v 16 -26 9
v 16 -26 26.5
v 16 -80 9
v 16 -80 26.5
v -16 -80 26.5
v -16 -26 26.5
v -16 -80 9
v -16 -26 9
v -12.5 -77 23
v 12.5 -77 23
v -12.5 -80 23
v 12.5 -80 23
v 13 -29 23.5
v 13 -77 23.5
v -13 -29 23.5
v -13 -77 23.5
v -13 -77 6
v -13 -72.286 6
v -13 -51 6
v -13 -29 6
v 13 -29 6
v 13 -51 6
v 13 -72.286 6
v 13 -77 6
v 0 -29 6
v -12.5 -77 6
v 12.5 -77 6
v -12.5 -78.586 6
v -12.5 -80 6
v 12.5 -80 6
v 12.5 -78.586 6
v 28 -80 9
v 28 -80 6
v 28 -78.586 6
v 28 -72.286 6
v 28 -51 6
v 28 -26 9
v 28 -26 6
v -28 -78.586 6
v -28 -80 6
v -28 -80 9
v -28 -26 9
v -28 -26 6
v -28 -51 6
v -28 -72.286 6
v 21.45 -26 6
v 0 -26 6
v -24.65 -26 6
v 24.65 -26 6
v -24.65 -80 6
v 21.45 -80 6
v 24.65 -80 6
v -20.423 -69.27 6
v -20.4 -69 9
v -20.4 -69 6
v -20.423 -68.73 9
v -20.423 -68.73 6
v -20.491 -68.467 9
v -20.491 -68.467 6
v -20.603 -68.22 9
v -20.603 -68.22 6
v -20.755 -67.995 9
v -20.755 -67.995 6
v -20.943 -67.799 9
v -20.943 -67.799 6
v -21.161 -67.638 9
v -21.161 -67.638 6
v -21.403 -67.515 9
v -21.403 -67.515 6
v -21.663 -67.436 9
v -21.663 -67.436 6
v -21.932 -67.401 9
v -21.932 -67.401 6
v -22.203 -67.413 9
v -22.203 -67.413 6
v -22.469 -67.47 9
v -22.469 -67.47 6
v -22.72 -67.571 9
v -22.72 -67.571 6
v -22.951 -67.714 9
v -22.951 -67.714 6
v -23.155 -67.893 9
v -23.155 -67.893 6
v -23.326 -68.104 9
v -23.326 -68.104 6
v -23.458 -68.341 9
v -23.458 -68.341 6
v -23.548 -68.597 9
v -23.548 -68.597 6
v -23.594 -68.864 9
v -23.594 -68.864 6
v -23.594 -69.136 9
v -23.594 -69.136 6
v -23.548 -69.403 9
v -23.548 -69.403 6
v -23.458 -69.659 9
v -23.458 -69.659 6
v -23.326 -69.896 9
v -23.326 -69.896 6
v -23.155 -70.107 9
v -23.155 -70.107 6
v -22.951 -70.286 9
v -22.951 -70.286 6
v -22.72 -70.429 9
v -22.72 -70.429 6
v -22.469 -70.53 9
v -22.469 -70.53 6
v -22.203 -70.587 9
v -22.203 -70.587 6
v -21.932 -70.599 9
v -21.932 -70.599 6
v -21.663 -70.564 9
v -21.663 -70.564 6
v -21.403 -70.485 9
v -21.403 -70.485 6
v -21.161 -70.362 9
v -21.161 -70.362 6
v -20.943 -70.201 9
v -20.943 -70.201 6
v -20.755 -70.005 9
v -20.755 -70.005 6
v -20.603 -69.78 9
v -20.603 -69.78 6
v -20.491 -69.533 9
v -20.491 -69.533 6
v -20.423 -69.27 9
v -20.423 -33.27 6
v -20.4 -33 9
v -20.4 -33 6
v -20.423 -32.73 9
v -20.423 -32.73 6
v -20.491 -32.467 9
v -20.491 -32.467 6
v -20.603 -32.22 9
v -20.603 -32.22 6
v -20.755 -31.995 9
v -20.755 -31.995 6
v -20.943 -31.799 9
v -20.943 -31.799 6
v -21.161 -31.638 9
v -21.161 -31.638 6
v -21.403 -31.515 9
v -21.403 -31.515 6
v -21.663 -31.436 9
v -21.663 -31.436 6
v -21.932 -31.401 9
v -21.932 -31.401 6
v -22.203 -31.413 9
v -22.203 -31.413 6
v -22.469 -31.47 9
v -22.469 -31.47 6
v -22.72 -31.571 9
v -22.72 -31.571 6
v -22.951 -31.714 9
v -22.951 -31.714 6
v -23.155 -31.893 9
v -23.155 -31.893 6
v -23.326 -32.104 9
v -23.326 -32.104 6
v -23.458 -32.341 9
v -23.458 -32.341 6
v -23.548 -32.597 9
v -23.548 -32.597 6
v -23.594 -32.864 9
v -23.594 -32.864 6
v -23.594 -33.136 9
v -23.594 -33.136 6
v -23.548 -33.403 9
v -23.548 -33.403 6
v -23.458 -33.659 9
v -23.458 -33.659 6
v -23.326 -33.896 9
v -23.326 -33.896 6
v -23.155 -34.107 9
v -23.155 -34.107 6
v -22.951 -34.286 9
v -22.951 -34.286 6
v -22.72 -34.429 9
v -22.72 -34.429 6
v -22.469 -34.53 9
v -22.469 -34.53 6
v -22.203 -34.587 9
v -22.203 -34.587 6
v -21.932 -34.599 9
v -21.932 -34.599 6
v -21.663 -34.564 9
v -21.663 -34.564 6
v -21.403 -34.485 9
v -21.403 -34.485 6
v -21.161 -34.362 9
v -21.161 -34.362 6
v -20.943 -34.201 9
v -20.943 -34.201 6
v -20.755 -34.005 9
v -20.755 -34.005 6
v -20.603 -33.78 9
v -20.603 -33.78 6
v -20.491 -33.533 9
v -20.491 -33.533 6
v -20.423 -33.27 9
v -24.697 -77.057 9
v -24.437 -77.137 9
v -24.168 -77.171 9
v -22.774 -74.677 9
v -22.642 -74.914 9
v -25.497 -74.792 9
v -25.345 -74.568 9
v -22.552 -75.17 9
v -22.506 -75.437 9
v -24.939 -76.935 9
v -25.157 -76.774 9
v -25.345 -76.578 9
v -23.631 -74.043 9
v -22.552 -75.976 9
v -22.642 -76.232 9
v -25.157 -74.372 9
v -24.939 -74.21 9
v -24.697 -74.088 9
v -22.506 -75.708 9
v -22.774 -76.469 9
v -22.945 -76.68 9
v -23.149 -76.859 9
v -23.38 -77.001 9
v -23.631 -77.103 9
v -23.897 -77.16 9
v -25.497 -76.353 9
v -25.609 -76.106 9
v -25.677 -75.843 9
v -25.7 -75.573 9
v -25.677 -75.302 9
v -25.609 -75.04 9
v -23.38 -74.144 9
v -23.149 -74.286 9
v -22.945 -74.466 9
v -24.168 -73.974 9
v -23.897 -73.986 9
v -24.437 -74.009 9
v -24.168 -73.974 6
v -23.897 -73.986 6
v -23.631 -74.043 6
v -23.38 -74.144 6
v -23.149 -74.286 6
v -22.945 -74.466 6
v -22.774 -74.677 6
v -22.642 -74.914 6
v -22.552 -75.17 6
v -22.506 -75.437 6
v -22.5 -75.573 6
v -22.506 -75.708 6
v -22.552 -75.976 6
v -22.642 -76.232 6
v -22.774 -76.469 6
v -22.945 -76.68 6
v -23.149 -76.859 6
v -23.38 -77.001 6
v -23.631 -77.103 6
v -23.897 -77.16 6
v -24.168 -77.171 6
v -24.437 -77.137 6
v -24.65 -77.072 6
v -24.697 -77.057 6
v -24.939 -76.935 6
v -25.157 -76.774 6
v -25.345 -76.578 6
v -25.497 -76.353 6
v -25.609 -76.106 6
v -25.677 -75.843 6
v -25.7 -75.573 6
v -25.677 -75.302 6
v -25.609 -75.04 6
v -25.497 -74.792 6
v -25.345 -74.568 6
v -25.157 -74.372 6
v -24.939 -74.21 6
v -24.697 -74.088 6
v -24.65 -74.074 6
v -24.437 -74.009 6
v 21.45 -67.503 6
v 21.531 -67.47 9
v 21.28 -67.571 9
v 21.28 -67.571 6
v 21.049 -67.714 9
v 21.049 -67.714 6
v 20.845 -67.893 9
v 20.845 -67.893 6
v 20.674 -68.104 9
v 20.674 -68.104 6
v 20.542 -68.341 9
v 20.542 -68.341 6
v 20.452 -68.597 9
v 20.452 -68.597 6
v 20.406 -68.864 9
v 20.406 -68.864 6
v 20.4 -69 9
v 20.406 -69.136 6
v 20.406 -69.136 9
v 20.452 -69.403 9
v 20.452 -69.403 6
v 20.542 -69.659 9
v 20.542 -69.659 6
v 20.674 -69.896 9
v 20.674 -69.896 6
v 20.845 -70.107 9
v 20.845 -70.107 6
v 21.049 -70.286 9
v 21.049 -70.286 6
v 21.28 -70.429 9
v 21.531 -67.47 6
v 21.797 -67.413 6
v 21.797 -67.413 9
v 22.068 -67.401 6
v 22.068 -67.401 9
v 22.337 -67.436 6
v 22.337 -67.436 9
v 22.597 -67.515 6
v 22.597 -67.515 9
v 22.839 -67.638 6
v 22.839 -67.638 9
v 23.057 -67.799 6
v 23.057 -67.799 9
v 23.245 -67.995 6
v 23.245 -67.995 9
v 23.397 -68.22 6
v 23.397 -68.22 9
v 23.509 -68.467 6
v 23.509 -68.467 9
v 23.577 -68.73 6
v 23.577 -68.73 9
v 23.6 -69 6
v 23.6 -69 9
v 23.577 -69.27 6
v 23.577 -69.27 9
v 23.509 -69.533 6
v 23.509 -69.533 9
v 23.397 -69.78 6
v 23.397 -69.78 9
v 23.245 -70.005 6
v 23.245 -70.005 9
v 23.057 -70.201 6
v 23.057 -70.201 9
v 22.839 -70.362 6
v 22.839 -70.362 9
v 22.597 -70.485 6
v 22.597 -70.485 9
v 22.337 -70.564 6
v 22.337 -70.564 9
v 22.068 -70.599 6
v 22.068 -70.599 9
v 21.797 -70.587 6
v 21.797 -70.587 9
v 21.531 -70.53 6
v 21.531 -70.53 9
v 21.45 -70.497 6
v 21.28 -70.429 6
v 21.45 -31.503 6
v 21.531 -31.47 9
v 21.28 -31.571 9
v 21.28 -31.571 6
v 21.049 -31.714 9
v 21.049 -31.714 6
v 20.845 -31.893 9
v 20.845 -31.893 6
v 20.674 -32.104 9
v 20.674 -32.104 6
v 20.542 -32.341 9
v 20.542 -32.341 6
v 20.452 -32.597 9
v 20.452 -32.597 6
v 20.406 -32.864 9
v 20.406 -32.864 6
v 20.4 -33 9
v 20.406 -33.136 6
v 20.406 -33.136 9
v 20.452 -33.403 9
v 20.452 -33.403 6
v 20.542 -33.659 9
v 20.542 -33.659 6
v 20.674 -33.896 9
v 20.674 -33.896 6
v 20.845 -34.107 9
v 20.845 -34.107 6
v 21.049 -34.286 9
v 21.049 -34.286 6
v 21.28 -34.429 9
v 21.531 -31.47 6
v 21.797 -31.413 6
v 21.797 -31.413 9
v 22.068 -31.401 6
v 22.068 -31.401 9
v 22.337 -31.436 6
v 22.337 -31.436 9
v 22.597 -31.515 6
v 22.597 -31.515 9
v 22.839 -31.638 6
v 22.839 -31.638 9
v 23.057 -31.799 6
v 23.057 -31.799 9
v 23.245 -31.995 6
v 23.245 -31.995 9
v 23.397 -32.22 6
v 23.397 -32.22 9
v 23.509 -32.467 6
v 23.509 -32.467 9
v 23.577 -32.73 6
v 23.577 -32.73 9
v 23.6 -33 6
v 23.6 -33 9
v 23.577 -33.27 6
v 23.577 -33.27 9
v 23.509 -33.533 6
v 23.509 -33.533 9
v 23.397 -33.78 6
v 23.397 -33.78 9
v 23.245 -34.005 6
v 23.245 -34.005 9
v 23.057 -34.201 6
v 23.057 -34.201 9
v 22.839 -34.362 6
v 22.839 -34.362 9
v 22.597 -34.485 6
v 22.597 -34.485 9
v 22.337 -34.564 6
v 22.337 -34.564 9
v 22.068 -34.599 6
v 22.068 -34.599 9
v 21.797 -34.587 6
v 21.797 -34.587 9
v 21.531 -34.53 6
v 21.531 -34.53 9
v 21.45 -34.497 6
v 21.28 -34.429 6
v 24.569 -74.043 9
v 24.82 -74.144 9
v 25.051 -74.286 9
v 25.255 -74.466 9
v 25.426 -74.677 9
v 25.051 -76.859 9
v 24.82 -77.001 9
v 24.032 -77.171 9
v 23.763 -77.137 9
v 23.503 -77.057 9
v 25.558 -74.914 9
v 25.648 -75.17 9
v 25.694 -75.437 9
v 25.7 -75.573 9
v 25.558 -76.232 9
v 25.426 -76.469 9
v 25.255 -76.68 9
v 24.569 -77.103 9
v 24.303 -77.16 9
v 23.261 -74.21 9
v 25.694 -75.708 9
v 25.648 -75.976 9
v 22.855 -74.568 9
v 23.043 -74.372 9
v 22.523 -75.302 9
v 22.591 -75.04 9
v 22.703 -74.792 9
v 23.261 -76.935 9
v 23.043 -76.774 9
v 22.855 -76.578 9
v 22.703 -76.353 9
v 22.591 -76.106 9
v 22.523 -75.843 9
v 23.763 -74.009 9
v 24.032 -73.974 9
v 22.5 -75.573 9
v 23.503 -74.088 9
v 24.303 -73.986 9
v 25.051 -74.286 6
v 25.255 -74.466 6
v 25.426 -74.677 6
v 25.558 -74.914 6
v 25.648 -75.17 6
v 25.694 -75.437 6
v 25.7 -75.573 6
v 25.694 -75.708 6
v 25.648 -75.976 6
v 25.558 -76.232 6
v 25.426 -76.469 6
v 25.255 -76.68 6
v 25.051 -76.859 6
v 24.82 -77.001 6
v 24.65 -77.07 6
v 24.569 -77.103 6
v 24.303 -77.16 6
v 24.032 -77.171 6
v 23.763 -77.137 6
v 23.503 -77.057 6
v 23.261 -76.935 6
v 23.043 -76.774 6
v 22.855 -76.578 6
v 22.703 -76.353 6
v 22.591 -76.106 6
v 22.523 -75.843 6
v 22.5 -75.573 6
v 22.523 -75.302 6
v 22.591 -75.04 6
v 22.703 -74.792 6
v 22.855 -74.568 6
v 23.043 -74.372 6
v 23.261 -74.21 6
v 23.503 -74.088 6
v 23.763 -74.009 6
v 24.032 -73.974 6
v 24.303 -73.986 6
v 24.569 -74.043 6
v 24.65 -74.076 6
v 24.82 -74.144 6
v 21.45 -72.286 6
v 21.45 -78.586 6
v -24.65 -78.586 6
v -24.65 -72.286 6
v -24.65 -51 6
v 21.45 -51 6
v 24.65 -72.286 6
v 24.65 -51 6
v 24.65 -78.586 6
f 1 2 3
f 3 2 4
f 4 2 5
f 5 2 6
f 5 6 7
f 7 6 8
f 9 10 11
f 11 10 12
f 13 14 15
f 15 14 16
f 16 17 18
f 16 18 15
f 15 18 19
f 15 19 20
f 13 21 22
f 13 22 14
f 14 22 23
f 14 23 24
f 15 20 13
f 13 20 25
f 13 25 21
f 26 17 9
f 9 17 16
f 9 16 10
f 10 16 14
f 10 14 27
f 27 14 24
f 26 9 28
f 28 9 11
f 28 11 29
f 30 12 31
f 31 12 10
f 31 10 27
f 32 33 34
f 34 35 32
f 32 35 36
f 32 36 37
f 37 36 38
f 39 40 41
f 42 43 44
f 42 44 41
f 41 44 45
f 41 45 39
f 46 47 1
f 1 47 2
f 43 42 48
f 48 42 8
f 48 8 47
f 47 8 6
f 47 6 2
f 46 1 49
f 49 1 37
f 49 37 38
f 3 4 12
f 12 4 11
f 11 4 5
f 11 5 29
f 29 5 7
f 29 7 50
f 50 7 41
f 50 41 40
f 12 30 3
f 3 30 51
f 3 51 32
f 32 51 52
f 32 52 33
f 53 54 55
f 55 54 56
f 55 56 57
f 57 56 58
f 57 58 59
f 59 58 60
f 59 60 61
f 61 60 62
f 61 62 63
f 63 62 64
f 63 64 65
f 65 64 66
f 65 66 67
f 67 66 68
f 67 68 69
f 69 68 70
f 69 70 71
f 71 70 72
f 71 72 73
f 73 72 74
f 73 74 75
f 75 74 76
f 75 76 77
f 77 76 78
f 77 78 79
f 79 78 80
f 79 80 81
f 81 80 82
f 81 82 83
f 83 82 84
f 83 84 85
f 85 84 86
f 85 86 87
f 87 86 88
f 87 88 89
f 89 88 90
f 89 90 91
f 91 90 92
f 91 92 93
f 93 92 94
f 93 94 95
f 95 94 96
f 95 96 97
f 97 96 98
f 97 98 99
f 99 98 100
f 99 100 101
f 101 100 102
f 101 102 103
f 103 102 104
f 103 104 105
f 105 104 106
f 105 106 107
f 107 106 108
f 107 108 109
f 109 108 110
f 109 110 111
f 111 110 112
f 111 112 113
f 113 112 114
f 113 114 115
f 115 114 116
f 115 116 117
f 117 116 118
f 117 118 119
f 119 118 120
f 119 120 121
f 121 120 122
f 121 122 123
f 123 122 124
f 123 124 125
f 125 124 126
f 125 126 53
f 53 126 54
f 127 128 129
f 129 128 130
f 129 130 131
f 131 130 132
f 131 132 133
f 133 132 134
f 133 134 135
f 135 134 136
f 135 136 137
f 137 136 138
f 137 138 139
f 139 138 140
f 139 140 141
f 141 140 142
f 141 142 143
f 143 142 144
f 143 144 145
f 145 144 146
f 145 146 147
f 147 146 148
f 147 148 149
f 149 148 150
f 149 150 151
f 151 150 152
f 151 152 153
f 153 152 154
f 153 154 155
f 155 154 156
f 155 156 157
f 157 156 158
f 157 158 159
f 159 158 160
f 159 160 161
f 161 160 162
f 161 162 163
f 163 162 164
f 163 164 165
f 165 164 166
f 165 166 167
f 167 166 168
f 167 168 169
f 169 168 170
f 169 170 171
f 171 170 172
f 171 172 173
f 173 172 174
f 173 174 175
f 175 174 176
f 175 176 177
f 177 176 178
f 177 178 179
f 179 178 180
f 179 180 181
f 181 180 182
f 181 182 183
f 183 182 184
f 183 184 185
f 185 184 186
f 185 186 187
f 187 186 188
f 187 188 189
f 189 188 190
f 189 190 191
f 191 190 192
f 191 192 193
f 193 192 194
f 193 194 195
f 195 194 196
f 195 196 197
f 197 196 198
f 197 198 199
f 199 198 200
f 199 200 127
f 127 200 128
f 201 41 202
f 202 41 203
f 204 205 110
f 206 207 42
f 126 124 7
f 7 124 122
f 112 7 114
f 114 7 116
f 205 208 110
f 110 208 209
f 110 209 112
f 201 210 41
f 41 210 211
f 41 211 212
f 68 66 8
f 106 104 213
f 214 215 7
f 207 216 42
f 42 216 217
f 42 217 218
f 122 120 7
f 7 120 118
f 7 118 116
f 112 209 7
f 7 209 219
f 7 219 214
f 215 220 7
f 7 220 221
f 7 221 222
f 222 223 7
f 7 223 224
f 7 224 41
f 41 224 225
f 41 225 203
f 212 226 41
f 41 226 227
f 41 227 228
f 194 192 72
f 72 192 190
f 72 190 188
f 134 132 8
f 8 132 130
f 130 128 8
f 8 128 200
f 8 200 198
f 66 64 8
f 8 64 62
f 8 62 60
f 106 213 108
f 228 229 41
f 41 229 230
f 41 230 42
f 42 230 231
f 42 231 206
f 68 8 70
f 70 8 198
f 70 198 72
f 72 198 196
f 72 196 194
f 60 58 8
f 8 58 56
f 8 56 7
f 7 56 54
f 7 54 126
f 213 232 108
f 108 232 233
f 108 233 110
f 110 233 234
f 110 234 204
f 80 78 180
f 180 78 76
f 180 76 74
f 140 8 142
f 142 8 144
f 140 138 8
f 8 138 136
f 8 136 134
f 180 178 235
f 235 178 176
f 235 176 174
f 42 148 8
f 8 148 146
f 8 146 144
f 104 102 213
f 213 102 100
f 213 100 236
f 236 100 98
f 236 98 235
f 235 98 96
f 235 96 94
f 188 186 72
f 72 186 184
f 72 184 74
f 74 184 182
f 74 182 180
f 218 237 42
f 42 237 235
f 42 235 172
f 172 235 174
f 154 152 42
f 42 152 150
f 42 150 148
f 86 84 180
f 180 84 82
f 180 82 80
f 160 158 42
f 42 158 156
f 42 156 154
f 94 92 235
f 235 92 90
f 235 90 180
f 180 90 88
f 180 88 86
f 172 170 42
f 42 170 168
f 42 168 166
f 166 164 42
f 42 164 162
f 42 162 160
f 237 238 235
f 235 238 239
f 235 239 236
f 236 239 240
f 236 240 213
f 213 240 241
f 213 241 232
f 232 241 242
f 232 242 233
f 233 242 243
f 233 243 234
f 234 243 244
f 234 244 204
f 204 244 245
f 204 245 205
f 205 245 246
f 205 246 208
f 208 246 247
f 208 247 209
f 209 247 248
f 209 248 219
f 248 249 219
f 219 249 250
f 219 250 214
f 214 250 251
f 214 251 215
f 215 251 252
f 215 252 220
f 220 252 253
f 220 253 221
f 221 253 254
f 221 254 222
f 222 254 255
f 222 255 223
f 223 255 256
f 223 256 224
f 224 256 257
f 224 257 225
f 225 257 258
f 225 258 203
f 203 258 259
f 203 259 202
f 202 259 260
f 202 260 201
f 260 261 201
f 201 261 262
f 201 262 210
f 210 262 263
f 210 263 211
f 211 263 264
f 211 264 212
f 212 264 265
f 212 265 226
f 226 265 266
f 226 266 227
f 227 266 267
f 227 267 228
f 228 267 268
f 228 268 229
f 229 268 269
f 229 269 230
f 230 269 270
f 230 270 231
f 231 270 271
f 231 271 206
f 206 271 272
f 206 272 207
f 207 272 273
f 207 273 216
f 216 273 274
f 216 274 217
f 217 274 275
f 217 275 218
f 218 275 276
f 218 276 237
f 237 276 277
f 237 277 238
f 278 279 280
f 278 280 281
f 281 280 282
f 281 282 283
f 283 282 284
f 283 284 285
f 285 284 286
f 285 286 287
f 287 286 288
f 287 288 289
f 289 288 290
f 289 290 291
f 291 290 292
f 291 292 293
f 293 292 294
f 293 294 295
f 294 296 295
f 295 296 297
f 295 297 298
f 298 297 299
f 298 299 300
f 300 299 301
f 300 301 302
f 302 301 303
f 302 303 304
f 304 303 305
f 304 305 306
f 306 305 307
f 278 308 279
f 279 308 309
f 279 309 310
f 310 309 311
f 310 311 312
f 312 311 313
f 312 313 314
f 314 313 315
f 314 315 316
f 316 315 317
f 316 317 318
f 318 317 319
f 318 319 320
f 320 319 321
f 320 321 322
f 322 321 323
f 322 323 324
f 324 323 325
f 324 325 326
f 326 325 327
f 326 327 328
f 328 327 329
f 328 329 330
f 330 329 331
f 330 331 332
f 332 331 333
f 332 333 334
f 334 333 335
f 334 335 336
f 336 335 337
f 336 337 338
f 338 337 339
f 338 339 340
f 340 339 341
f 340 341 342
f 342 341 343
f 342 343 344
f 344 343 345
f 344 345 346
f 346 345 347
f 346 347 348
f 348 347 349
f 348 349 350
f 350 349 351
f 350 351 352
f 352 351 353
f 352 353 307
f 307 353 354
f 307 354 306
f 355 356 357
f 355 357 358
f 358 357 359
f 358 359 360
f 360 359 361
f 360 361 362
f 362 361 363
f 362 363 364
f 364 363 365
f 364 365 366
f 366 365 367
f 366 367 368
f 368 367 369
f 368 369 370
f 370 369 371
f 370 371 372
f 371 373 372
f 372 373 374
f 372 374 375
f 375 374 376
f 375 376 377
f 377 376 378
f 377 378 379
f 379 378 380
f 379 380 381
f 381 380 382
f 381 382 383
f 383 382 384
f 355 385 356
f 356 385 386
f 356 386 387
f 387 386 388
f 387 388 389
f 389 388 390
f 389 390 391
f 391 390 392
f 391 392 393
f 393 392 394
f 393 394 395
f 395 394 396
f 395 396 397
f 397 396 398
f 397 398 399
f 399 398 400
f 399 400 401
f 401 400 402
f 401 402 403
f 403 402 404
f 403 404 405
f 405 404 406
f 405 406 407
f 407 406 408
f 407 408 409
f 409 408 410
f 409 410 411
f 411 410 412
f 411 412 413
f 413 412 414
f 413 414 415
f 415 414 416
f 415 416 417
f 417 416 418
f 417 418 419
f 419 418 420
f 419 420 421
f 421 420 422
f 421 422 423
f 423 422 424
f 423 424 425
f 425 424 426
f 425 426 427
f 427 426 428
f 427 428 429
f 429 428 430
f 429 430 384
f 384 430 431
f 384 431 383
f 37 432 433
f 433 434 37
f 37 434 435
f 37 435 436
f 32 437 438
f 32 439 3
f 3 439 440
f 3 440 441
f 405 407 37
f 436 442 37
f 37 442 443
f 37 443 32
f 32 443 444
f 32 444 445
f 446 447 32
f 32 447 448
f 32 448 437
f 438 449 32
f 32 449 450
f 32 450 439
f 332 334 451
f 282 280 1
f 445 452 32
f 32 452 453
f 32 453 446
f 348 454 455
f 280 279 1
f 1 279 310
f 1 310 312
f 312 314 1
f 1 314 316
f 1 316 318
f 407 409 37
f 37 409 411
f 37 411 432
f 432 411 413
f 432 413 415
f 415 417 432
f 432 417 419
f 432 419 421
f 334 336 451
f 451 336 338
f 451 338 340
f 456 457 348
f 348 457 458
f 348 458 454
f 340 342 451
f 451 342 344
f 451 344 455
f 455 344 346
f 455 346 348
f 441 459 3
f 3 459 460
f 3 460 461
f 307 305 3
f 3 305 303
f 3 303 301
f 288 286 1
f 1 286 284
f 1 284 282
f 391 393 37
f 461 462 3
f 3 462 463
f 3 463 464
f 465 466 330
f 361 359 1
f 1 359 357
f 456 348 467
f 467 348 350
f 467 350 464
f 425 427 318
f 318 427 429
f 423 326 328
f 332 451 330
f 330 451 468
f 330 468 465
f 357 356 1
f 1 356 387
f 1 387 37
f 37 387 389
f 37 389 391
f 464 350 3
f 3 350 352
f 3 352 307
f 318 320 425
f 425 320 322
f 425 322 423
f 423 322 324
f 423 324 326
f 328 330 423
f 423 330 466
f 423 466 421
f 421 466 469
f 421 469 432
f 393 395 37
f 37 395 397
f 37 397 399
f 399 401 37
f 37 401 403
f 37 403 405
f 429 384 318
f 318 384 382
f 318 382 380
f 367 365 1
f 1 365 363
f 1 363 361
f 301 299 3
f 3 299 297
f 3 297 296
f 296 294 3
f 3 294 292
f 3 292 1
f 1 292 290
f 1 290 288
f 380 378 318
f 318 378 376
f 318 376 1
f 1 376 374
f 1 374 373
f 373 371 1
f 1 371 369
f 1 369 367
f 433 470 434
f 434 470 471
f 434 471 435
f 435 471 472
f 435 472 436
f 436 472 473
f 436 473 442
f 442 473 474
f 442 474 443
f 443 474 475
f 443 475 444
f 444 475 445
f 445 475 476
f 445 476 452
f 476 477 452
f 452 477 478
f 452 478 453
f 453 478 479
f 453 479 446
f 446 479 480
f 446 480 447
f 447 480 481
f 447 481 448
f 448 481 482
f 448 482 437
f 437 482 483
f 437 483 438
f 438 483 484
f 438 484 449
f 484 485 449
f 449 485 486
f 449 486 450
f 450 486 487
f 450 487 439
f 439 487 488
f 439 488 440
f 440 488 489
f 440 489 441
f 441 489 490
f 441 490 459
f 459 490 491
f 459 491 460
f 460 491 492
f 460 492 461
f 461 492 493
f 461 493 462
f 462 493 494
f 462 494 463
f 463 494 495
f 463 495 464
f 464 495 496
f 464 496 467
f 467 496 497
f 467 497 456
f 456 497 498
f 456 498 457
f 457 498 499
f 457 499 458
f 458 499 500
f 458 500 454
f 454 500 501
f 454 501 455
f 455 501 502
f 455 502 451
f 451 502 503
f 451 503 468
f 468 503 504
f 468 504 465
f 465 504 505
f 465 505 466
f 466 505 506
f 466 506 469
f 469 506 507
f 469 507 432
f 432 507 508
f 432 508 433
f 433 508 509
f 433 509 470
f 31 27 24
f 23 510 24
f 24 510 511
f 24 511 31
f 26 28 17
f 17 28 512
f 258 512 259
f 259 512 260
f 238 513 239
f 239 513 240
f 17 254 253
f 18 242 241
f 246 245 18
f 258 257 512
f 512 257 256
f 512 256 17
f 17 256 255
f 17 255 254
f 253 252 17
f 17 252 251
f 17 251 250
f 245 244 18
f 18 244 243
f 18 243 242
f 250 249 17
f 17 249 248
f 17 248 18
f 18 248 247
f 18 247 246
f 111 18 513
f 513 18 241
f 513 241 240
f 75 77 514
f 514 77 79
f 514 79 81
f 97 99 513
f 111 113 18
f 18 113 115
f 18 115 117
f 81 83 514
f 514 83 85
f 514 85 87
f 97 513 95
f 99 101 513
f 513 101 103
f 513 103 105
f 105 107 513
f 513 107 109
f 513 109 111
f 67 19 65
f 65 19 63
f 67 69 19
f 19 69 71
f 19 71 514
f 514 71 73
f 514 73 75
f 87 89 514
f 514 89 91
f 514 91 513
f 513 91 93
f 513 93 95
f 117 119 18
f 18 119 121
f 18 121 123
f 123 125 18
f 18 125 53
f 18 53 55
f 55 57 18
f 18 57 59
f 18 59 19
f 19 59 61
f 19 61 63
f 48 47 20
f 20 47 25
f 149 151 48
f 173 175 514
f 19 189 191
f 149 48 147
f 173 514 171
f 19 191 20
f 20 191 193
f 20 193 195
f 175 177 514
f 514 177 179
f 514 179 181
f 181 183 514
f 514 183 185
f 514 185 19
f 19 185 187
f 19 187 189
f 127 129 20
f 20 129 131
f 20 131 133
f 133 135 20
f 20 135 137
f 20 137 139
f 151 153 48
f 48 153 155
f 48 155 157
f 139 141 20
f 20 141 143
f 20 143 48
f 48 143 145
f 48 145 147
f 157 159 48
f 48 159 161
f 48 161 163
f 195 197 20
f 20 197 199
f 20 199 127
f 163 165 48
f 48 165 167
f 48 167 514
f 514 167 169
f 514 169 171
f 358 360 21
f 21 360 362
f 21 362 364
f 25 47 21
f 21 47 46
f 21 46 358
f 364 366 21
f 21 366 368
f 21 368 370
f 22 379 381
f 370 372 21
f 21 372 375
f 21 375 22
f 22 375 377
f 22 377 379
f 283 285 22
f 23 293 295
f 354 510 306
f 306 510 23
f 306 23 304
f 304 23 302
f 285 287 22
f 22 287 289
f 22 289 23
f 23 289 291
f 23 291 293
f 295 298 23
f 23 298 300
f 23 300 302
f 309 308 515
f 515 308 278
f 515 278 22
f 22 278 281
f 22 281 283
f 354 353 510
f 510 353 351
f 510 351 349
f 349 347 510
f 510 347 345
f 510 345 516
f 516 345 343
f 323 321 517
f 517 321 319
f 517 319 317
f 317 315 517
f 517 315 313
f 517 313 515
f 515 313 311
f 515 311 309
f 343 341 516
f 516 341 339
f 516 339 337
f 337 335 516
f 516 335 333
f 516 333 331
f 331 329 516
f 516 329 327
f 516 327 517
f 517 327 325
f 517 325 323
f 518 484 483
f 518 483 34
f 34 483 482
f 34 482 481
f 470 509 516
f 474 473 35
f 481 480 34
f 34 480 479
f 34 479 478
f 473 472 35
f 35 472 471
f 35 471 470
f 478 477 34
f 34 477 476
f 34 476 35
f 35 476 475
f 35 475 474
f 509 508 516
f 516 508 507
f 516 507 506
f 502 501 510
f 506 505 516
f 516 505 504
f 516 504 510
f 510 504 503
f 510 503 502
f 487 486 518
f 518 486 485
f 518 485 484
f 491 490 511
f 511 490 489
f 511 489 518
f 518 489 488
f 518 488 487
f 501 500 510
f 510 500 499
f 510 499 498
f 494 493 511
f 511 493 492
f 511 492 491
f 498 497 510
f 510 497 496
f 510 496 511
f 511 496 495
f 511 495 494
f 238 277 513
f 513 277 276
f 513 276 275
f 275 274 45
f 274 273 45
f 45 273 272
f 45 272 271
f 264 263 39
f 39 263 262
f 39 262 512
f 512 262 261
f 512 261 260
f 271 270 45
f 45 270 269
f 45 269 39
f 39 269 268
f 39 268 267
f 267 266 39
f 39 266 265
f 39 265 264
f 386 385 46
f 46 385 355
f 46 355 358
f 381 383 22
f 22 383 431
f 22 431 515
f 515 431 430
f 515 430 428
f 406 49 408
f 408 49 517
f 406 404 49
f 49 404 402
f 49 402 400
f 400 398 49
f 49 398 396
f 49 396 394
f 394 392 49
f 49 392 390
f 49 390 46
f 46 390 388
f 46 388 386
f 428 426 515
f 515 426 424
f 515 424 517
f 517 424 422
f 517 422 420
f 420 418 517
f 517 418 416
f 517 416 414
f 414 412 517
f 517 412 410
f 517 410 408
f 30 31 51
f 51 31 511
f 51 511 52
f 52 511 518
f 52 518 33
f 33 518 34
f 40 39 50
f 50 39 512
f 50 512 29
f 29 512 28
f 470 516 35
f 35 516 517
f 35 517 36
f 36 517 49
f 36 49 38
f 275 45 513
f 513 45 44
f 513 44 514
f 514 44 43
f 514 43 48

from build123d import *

# Parameters (mm, degrees)
SKETCH1_W           = 132
SKETCH1_H           = 160
BOSS_EXTRUDE1_DEPTH = 6
SKETCH3_W           = 32
SKETCH3_H           = 54
SKETCH3_W_2         = 26
SKETCH3_H_2         = 48
BOSS_EXTRUDE2_DEPTH = 17.5
SKETCH4_W           = 32
SKETCH4_H           = 54
BOSS_EXTRUDE3_DEPTH = 3
SKETCH5_W           = 25
SKETCH5_H           = 17
CUT_EXTRUDE1_DEPTH  = 3
SKETCH6_W           = 12
SKETCH6_H           = 54
BOSS_EXTRUDE4_DEPTH = 3
SKETCH7_R           = 1.6
CUT_EXTRUDE2_DEPTH  = 106.177231376
SKETCH8_W           = 3
SKETCH8_H           = 6.5
BOSS_EXTRUDE5_DEPTH = 20
SKETCH9_R           = 1.55
CUT_EXTRUDE3_DEPTH  = 6
SKETCH10_R          = 1.6
CUT_EXTRUDE4_DEPTH  = 108.043215572
SKETCH11_W          = 2.5
SKETCH11_H          = 7
BOSS_EXTRUDE6_DEPTH = 19.36
SKETCH12_R          = 1.6
CUT_EXTRUDE5_DEPTH  = 19.36
SKETCH13_W          = 3
SKETCH13_H          = 7
BOSS_EXTRUDE7_DEPTH = 15
SKETCH14_R          = 2
CUT_EXTRUDE6_DEPTH  = 15
CUT_EXTRUDE7_START  = -6
CUT_EXTRUDE7_DEPTH  = 6
SKETCH16_R          = 1.6
CUT_EXTRUDE8_DEPTH  = 15
SKETCH17_W          = 119.064494472
SKETCH17_H          = 144.515611373
CUT_EXTRUDE10_DEPTH = 61


# Read off the part's stored shape, not the designer's step: Cut-Extrude7
with BuildPart() as part:
    # Sketch1 → Boss-Extrude1 (new body)
    with BuildSketch(Plane.XY):
        Rectangle(SKETCH1_W, SKETCH1_H)
    extrude(amount=BOSS_EXTRUDE1_DEPTH)

    # Sketch3 → Boss-Extrude2 (add)
    with BuildSketch(Plane.XY.offset(6)):
        with Locations((0, -53)):
            Rectangle(SKETCH3_W, SKETCH3_H)
        with Locations((0, -53)):
            Rectangle(SKETCH3_W_2, SKETCH3_H_2, mode=Mode.SUBTRACT)
    extrude(amount=BOSS_EXTRUDE2_DEPTH)

    # Sketch4 → Boss-Extrude3 (add)
    with BuildSketch(Plane.XY.offset(23.5)):
        with Locations((0, -53)):
            Rectangle(SKETCH4_W, SKETCH4_H)
    extrude(amount=BOSS_EXTRUDE3_DEPTH)

    # Sketch5 → Cut-Extrude1 (cut)
    with BuildSketch(Plane.XZ.offset(80)):
        with Locations((0, 14.5)):
            Rectangle(SKETCH5_W, SKETCH5_H)
    extrude(amount=-CUT_EXTRUDE1_DEPTH, mode=Mode.SUBTRACT)

    # Sketch6 → Boss-Extrude4 (add)
    with BuildSketch(Plane.XY.offset(6)):
        with Locations((-22, -53)):
            Rectangle(SKETCH6_W, SKETCH6_H)
        with Locations((22, -53)):
            Rectangle(SKETCH6_W, SKETCH6_H)
    extrude(amount=BOSS_EXTRUDE4_DEPTH)

    # Sketch7 → Cut-Extrude2 (cut, through all)
    with BuildSketch(Plane.XY.offset(9)):
        with Locations((-22, -69)):
            Circle(SKETCH7_R)
        with Locations((-22, -33)):
            Circle(SKETCH7_R)
        with Locations(Location((22, -69, 0), (0, 0, 180))):
            Circle(SKETCH7_R)
        with Locations(Location((22, -33, 0), (0, 0, 180))):
            Circle(SKETCH7_R)
    extrude(amount=-CUT_EXTRUDE2_DEPTH, mode=Mode.SUBTRACT)

    # Sketch8 → Boss-Extrude5 (add)
    with BuildSketch(Plane.XY.offset(6)):
        with Locations((-54.38, -76.75)):
            Rectangle(SKETCH8_W, SKETCH8_H)
        with Locations((-54.38, -30.25)):
            Rectangle(SKETCH8_W, SKETCH8_H)
    boss_extrude5 = extrude(amount=BOSS_EXTRUDE5_DEPTH)

    # Sketch9 → Cut-Extrude3 (cut)
    with BuildSketch(Plane.ZY.offset(55.88)):
        with Locations((10.35, -76.75)):
            Circle(SKETCH9_R)
        with Locations((19.65, -76.75)):
            Circle(SKETCH9_R)
        with Locations((10.35, -30.25)):
            Circle(SKETCH9_R)
        with Locations((19.65, -30.25)):
            Circle(SKETCH9_R)
    cut_extrude3 = extrude(amount=-CUT_EXTRUDE3_DEPTH, mode=Mode.SUBTRACT)

    # Mirror1: Boss-Extrude5, Cut-Extrude3 across plane
    add(boss_extrude5.mirror(Plane(origin=(0, 0, 0), x_dir=(0, 0, 1), z_dir=(1, 0, 0))))
    add(cut_extrude3.mirror(Plane(origin=(0, 0, 0), x_dir=(0, 0, 1), z_dir=(1, 0, 0))), mode=Mode.SUBTRACT)

    # Sketch10 → Cut-Extrude4 (cut, through all)
    with BuildSketch(Plane(origin=(0, 0, 0), x_dir=(-1, 0, 0), z_dir=(0, 0, -1))):
        with Locations((-24.1, -75.572749788)):
            Circle(SKETCH10_R)
        with Locations((-21.15, -12.732749788)):
            Circle(SKETCH10_R)
        with Locations(Location((21.15, -12.732749788, 0), (0, 0, 180))):
            Circle(SKETCH10_R)
        with Locations((24.1, -75.572749788)):
            Circle(SKETCH10_R)
    extrude(amount=-CUT_EXTRUDE4_DEPTH, mode=Mode.SUBTRACT)

    # Sketch11 → Boss-Extrude6 (add)
    with BuildSketch(Plane(origin=(0, 0, 0), x_dir=(-1, 0, 0), z_dir=(0, 0, -1))):
        with Locations((-17.9, 1.267250212)):
            Rectangle(SKETCH11_W, SKETCH11_H)
        with Locations((-17.9, 50.267250212)):
            Rectangle(SKETCH11_W, SKETCH11_H)
    extrude(amount=BOSS_EXTRUDE6_DEPTH)

    # Sketch12 → Cut-Extrude5 (cut)
    with BuildSketch(Plane(origin=(19.15, 0, 0), x_dir=(0, 0, -1), z_dir=(1, 0, 0))):
        with Locations(Location((4.5, 50.267250212, 0), (0, 0, 90))):
            Circle(SKETCH12_R)
        with Locations(Location((14.5, 50.267250212, 0), (0, 0, 90))):
            Circle(SKETCH12_R)
        with Locations(Location((4.5, 1.267250212, 0), (0, 0, 90))):
            Circle(SKETCH12_R)
        with Locations(Location((14.5, 1.267250212, 0), (0, 0, 90))):
            Circle(SKETCH12_R)
    extrude(amount=-CUT_EXTRUDE5_DEPTH, mode=Mode.SUBTRACT)

    # Sketch13 → Boss-Extrude7 (add)
    with BuildSketch(Plane(origin=(0, 0, 0), x_dir=(-1, 0, 0), z_dir=(0, 0, -1))):
        with Locations((29.35, 35.967250212)):
            Rectangle(SKETCH13_W, SKETCH13_H)
    extrude(amount=BOSS_EXTRUDE7_DEPTH)

    # Sketch14 → Cut-Extrude6 (cut)
    with BuildSketch(Plane.ZY.offset(30.85)):
        with Locations((-9.9, 35.967250212)):
            Circle(SKETCH14_R)
    extrude(amount=-CUT_EXTRUDE6_DEPTH, mode=Mode.SUBTRACT)

    # Cut-Extrude7 outline → Cut-Extrude7 (cut)
    with BuildSketch(Plane(origin=(0, 0, 0), x_dir=(-1, 0, 0), z_dir=(0, 0, -1)).offset(CUT_EXTRUDE7_START)):
        Polygon((-30.85, 56.767250212), (30.85, 56.767250212), (30.85, -24), (58.88, -24), (58.88, -80), (66, -80), (66, 80), (-66, 80), (-66, -80), (-58.88, -80), (-58.88, -24), (-30.85, -24), align=None)
    extrude(amount=CUT_EXTRUDE7_DEPTH, mode=Mode.SUBTRACT)

    # Sketch16 → Cut-Extrude8 (cut)
    with BuildSketch(Plane(origin=(0, 0, 0), x_dir=(-1, 0, 0), z_dir=(0, 0, -1))):
        Circle(SKETCH16_R)
        with Locations((0, 52.767250212)):
            Circle(SKETCH16_R)
    extrude(amount=-CUT_EXTRUDE8_DEPTH, mode=Mode.SUBTRACT)

    # Sketch17 → Cut-Extrude10 (cut)
    with BuildSketch(Plane.XY.offset(6)):
        with Locations((0.652247236, -7.742194314)):
            Rectangle(SKETCH17_W, SKETCH17_H)
    extrude(amount=-CUT_EXTRUDE10_DEPTH, mode=Mode.SUBTRACT)


with BuildPart() as body_2:
    # of the pieces the cut leaves, the one that is kept (cut_extrude10_keep)
    add(part.part.solids().sort_by_distance((12.5, -80, 6))[0])


solid = body_2.part
